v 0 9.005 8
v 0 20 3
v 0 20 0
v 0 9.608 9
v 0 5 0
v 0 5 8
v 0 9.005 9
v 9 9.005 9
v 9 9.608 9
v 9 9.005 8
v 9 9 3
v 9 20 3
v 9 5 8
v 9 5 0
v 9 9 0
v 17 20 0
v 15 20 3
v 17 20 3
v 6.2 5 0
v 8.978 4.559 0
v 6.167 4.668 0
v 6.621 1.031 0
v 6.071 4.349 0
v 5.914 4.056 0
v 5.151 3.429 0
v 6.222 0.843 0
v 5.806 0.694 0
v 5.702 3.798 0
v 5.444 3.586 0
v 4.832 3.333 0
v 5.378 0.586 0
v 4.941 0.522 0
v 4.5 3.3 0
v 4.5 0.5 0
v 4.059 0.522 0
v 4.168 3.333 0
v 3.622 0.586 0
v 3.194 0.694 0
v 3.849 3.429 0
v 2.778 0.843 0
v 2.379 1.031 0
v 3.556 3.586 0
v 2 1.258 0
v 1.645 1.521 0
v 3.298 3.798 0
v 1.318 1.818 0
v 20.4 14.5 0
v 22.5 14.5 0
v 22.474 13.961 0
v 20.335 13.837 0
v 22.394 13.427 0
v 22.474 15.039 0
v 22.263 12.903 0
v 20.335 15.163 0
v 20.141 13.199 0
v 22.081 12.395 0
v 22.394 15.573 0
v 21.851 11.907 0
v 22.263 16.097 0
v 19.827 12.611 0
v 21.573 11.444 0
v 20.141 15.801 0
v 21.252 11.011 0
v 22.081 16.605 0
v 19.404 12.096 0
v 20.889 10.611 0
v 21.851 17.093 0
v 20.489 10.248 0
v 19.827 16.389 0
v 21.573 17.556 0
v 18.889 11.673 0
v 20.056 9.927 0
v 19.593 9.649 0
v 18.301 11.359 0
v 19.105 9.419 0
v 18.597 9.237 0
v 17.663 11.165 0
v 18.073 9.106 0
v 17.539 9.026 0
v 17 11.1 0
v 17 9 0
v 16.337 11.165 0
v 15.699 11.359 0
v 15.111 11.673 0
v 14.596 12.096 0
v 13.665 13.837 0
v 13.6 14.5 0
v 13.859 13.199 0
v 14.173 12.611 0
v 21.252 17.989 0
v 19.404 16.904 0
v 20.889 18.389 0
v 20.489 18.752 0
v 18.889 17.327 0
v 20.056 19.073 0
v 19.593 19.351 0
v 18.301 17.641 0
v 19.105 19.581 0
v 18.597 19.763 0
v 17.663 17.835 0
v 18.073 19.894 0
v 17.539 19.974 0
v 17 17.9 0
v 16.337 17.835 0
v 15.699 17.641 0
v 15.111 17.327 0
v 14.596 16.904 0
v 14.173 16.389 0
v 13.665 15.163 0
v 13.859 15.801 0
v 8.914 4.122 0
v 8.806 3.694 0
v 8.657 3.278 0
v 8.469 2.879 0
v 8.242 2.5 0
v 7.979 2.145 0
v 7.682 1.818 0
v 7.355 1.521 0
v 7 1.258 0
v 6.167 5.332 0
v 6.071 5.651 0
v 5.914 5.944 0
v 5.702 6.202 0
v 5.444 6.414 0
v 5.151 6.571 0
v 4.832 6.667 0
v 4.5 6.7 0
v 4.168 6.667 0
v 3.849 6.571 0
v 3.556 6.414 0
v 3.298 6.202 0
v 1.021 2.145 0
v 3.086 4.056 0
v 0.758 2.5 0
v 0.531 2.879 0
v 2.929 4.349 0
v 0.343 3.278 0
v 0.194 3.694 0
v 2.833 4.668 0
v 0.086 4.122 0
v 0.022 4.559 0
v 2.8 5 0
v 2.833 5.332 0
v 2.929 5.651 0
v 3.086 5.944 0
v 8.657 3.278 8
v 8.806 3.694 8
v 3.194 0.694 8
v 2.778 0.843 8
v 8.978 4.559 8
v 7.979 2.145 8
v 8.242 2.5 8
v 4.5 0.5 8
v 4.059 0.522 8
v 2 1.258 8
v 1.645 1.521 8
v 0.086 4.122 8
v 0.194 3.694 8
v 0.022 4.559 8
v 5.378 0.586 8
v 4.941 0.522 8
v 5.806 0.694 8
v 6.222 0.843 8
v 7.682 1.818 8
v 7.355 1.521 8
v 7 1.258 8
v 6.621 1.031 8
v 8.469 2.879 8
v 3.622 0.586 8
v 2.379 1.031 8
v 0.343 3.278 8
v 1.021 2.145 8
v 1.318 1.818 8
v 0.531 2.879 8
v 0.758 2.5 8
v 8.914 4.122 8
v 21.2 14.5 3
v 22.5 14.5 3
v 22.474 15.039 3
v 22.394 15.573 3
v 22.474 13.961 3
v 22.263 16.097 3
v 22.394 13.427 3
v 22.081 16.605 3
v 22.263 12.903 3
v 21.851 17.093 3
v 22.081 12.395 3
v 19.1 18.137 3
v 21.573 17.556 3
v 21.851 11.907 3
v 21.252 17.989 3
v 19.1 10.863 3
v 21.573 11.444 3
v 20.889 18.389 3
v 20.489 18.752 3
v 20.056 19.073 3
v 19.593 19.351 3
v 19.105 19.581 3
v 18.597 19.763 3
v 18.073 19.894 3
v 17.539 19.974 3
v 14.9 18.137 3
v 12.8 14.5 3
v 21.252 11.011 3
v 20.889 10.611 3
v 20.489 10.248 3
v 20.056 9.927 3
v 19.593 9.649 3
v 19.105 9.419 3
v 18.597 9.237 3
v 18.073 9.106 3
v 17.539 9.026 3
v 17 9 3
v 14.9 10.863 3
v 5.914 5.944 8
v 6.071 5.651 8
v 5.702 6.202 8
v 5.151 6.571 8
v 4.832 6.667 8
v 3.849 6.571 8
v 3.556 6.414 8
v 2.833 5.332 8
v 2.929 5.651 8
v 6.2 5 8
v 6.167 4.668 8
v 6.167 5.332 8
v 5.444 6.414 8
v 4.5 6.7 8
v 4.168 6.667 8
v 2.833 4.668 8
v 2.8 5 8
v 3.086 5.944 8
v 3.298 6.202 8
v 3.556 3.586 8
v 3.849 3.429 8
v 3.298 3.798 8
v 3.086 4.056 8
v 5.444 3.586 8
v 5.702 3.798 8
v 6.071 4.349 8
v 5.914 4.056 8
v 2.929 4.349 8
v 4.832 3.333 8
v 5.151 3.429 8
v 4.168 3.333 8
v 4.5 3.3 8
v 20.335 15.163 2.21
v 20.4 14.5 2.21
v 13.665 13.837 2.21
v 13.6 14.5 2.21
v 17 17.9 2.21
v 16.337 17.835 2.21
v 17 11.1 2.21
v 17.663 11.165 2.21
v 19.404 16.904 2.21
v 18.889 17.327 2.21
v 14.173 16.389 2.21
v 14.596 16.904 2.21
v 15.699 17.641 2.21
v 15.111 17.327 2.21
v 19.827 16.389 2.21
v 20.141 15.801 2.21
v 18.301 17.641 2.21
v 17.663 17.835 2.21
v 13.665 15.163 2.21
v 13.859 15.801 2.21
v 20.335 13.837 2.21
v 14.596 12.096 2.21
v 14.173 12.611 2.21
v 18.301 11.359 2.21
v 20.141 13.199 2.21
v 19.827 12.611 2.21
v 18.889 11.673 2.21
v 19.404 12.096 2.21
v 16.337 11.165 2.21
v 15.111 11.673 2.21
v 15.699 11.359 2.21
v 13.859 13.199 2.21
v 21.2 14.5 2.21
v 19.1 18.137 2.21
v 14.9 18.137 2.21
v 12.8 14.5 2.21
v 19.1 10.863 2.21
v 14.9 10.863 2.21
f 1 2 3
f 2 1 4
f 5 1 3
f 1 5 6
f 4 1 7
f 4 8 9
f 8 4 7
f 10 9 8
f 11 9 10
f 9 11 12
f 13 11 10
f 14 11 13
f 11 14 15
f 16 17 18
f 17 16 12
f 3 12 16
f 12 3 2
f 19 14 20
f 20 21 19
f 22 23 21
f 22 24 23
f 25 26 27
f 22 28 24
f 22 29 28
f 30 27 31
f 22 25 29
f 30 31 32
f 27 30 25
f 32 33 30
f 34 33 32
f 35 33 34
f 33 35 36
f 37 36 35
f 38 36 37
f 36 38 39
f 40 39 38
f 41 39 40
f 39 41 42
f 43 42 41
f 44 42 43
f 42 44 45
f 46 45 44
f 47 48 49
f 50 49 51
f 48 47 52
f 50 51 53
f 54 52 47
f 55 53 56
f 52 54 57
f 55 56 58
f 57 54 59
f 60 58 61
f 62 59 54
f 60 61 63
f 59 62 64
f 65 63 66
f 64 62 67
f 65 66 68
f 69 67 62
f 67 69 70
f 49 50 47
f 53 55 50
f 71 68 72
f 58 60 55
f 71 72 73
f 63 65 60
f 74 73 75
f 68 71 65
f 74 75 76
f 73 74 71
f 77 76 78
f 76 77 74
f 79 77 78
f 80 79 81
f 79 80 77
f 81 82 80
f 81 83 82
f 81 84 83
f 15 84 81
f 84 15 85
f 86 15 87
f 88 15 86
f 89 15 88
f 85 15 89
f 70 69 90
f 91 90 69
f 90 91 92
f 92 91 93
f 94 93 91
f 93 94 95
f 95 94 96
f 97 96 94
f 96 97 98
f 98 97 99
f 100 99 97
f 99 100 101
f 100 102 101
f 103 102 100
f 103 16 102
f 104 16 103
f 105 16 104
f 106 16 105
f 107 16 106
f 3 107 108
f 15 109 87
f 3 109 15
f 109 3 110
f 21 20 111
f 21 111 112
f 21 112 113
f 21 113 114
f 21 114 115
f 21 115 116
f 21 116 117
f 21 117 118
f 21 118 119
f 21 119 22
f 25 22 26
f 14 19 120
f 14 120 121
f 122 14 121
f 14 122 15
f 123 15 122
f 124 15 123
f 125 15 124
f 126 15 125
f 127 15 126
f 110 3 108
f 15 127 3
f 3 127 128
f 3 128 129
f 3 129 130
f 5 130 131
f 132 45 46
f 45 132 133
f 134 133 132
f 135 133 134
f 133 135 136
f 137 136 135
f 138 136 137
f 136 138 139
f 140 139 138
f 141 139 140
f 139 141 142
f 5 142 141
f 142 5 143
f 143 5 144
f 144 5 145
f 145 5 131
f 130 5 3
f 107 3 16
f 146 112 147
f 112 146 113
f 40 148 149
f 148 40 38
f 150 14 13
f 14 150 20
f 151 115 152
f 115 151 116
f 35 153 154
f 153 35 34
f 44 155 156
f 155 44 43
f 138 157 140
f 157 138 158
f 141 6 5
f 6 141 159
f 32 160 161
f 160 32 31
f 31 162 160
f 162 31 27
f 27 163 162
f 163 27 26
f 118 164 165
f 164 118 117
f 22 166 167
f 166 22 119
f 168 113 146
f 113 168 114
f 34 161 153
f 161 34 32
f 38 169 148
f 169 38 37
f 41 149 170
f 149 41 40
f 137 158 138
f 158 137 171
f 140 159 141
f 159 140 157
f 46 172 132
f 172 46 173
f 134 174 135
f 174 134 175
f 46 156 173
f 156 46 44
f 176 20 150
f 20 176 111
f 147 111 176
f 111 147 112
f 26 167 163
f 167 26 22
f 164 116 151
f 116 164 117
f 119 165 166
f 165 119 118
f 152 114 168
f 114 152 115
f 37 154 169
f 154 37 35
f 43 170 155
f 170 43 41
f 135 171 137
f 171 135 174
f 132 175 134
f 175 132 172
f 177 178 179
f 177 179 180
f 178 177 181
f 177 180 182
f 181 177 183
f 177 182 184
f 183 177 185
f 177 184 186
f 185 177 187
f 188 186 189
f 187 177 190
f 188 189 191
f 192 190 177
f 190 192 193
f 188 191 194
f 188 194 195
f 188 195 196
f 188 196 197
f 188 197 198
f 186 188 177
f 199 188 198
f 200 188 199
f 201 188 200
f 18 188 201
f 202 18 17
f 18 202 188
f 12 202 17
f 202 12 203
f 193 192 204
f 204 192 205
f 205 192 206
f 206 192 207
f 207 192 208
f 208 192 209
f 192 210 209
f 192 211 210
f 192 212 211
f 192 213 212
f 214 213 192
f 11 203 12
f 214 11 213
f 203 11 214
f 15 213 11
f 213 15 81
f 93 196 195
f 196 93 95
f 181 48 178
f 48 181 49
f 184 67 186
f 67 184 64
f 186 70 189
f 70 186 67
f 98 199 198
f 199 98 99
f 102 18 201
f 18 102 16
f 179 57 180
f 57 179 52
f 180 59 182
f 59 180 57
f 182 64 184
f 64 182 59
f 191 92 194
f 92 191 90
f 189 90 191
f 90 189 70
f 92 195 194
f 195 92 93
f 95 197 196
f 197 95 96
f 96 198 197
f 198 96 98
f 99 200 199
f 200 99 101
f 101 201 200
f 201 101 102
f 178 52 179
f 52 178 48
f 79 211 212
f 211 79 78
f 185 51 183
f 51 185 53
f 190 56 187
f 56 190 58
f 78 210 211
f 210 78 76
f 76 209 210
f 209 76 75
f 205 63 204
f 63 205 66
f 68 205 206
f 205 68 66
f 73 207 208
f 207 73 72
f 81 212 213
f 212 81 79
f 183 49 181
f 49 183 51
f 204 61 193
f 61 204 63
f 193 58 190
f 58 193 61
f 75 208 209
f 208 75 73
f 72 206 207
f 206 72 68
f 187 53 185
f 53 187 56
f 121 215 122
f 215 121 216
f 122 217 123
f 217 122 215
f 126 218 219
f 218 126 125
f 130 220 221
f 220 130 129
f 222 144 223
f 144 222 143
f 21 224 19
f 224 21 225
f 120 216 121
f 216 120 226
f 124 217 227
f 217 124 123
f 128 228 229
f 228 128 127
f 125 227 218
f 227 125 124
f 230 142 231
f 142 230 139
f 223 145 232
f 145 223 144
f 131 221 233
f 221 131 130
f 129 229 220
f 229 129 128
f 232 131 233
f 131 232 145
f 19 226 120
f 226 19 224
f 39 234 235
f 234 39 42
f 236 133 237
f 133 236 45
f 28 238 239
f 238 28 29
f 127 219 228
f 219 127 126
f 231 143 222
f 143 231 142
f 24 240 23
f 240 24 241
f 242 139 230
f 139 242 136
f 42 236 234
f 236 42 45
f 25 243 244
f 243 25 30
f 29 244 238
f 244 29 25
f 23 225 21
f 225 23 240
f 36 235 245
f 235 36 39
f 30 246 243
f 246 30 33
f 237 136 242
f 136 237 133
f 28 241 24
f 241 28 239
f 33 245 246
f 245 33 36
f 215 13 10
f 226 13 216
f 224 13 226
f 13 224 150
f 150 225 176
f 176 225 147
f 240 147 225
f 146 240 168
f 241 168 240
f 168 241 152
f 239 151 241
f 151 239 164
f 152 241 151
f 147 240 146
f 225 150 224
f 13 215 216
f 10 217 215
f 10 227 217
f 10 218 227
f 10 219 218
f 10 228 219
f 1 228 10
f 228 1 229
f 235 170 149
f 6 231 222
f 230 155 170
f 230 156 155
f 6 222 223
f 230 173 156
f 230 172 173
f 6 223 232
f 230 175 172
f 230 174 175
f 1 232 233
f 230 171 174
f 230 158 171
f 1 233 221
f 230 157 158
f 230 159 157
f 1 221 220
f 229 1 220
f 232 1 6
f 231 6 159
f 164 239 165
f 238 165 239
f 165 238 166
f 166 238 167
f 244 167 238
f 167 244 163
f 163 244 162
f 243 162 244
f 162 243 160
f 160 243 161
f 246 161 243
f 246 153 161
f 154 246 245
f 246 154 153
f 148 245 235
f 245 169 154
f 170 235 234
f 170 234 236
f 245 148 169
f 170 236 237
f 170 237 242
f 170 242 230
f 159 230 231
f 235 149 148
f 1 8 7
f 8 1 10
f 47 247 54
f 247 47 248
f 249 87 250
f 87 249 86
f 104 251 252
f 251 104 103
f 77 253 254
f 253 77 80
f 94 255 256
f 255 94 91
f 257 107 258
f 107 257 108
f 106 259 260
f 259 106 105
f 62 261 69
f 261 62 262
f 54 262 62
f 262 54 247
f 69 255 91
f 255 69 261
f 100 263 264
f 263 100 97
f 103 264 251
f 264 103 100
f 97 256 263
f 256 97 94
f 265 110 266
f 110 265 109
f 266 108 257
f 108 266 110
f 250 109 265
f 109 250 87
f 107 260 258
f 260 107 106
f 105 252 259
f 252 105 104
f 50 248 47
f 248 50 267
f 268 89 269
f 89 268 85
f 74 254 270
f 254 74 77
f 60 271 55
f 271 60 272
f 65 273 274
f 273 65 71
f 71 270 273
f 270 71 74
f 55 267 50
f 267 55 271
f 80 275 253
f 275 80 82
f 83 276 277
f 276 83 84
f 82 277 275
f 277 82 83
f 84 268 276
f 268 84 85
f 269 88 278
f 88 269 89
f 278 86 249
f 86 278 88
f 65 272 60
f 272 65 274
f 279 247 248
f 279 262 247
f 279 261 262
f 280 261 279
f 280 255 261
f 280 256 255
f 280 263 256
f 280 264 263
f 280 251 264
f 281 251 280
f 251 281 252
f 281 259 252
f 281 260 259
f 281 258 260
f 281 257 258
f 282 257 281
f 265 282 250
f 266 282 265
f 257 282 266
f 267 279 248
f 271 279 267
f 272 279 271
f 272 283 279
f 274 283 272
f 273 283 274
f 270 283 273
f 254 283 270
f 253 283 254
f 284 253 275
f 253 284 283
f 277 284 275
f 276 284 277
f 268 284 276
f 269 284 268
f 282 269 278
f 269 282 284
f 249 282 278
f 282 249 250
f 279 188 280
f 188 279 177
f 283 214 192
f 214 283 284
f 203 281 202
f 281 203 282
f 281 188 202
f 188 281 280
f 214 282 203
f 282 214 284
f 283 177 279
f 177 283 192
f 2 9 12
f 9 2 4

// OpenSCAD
difference() {
    union() {
        translate(v=[0,5,0]) cube([9,15,9]);
        translate(v=[4.5,5,0]) cylinder(h=9,r=4.5, $fn=64);
        translate(v=[9,9,0]) cube([8,11,3]);
        translate(v=[17,14.5,0]) cylinder(h=3,r=5.5, $fn=64);
    }
    // Standoff bolt
    translate(v=[4.5,5,-0.5]) cylinder(h=10,r=1.7, $fn=32);
    // PCB
    translate(v=[-0.005,-0.005,8]) cube([10.01,9.01,1.01]);
    // Antenna
    translate(v=[17,14.5,-0.5]) cylinder(h=10,r=3.4, $fn=32);
    // Antenna nut
    translate(v=[17,14.5,2.21]) cylinder(h=1,r=4.2, $fn=6);
    
    translate(v=[-5,20,3]) rotate(a=[60,0,0]) cube([20,10,20]);
}
